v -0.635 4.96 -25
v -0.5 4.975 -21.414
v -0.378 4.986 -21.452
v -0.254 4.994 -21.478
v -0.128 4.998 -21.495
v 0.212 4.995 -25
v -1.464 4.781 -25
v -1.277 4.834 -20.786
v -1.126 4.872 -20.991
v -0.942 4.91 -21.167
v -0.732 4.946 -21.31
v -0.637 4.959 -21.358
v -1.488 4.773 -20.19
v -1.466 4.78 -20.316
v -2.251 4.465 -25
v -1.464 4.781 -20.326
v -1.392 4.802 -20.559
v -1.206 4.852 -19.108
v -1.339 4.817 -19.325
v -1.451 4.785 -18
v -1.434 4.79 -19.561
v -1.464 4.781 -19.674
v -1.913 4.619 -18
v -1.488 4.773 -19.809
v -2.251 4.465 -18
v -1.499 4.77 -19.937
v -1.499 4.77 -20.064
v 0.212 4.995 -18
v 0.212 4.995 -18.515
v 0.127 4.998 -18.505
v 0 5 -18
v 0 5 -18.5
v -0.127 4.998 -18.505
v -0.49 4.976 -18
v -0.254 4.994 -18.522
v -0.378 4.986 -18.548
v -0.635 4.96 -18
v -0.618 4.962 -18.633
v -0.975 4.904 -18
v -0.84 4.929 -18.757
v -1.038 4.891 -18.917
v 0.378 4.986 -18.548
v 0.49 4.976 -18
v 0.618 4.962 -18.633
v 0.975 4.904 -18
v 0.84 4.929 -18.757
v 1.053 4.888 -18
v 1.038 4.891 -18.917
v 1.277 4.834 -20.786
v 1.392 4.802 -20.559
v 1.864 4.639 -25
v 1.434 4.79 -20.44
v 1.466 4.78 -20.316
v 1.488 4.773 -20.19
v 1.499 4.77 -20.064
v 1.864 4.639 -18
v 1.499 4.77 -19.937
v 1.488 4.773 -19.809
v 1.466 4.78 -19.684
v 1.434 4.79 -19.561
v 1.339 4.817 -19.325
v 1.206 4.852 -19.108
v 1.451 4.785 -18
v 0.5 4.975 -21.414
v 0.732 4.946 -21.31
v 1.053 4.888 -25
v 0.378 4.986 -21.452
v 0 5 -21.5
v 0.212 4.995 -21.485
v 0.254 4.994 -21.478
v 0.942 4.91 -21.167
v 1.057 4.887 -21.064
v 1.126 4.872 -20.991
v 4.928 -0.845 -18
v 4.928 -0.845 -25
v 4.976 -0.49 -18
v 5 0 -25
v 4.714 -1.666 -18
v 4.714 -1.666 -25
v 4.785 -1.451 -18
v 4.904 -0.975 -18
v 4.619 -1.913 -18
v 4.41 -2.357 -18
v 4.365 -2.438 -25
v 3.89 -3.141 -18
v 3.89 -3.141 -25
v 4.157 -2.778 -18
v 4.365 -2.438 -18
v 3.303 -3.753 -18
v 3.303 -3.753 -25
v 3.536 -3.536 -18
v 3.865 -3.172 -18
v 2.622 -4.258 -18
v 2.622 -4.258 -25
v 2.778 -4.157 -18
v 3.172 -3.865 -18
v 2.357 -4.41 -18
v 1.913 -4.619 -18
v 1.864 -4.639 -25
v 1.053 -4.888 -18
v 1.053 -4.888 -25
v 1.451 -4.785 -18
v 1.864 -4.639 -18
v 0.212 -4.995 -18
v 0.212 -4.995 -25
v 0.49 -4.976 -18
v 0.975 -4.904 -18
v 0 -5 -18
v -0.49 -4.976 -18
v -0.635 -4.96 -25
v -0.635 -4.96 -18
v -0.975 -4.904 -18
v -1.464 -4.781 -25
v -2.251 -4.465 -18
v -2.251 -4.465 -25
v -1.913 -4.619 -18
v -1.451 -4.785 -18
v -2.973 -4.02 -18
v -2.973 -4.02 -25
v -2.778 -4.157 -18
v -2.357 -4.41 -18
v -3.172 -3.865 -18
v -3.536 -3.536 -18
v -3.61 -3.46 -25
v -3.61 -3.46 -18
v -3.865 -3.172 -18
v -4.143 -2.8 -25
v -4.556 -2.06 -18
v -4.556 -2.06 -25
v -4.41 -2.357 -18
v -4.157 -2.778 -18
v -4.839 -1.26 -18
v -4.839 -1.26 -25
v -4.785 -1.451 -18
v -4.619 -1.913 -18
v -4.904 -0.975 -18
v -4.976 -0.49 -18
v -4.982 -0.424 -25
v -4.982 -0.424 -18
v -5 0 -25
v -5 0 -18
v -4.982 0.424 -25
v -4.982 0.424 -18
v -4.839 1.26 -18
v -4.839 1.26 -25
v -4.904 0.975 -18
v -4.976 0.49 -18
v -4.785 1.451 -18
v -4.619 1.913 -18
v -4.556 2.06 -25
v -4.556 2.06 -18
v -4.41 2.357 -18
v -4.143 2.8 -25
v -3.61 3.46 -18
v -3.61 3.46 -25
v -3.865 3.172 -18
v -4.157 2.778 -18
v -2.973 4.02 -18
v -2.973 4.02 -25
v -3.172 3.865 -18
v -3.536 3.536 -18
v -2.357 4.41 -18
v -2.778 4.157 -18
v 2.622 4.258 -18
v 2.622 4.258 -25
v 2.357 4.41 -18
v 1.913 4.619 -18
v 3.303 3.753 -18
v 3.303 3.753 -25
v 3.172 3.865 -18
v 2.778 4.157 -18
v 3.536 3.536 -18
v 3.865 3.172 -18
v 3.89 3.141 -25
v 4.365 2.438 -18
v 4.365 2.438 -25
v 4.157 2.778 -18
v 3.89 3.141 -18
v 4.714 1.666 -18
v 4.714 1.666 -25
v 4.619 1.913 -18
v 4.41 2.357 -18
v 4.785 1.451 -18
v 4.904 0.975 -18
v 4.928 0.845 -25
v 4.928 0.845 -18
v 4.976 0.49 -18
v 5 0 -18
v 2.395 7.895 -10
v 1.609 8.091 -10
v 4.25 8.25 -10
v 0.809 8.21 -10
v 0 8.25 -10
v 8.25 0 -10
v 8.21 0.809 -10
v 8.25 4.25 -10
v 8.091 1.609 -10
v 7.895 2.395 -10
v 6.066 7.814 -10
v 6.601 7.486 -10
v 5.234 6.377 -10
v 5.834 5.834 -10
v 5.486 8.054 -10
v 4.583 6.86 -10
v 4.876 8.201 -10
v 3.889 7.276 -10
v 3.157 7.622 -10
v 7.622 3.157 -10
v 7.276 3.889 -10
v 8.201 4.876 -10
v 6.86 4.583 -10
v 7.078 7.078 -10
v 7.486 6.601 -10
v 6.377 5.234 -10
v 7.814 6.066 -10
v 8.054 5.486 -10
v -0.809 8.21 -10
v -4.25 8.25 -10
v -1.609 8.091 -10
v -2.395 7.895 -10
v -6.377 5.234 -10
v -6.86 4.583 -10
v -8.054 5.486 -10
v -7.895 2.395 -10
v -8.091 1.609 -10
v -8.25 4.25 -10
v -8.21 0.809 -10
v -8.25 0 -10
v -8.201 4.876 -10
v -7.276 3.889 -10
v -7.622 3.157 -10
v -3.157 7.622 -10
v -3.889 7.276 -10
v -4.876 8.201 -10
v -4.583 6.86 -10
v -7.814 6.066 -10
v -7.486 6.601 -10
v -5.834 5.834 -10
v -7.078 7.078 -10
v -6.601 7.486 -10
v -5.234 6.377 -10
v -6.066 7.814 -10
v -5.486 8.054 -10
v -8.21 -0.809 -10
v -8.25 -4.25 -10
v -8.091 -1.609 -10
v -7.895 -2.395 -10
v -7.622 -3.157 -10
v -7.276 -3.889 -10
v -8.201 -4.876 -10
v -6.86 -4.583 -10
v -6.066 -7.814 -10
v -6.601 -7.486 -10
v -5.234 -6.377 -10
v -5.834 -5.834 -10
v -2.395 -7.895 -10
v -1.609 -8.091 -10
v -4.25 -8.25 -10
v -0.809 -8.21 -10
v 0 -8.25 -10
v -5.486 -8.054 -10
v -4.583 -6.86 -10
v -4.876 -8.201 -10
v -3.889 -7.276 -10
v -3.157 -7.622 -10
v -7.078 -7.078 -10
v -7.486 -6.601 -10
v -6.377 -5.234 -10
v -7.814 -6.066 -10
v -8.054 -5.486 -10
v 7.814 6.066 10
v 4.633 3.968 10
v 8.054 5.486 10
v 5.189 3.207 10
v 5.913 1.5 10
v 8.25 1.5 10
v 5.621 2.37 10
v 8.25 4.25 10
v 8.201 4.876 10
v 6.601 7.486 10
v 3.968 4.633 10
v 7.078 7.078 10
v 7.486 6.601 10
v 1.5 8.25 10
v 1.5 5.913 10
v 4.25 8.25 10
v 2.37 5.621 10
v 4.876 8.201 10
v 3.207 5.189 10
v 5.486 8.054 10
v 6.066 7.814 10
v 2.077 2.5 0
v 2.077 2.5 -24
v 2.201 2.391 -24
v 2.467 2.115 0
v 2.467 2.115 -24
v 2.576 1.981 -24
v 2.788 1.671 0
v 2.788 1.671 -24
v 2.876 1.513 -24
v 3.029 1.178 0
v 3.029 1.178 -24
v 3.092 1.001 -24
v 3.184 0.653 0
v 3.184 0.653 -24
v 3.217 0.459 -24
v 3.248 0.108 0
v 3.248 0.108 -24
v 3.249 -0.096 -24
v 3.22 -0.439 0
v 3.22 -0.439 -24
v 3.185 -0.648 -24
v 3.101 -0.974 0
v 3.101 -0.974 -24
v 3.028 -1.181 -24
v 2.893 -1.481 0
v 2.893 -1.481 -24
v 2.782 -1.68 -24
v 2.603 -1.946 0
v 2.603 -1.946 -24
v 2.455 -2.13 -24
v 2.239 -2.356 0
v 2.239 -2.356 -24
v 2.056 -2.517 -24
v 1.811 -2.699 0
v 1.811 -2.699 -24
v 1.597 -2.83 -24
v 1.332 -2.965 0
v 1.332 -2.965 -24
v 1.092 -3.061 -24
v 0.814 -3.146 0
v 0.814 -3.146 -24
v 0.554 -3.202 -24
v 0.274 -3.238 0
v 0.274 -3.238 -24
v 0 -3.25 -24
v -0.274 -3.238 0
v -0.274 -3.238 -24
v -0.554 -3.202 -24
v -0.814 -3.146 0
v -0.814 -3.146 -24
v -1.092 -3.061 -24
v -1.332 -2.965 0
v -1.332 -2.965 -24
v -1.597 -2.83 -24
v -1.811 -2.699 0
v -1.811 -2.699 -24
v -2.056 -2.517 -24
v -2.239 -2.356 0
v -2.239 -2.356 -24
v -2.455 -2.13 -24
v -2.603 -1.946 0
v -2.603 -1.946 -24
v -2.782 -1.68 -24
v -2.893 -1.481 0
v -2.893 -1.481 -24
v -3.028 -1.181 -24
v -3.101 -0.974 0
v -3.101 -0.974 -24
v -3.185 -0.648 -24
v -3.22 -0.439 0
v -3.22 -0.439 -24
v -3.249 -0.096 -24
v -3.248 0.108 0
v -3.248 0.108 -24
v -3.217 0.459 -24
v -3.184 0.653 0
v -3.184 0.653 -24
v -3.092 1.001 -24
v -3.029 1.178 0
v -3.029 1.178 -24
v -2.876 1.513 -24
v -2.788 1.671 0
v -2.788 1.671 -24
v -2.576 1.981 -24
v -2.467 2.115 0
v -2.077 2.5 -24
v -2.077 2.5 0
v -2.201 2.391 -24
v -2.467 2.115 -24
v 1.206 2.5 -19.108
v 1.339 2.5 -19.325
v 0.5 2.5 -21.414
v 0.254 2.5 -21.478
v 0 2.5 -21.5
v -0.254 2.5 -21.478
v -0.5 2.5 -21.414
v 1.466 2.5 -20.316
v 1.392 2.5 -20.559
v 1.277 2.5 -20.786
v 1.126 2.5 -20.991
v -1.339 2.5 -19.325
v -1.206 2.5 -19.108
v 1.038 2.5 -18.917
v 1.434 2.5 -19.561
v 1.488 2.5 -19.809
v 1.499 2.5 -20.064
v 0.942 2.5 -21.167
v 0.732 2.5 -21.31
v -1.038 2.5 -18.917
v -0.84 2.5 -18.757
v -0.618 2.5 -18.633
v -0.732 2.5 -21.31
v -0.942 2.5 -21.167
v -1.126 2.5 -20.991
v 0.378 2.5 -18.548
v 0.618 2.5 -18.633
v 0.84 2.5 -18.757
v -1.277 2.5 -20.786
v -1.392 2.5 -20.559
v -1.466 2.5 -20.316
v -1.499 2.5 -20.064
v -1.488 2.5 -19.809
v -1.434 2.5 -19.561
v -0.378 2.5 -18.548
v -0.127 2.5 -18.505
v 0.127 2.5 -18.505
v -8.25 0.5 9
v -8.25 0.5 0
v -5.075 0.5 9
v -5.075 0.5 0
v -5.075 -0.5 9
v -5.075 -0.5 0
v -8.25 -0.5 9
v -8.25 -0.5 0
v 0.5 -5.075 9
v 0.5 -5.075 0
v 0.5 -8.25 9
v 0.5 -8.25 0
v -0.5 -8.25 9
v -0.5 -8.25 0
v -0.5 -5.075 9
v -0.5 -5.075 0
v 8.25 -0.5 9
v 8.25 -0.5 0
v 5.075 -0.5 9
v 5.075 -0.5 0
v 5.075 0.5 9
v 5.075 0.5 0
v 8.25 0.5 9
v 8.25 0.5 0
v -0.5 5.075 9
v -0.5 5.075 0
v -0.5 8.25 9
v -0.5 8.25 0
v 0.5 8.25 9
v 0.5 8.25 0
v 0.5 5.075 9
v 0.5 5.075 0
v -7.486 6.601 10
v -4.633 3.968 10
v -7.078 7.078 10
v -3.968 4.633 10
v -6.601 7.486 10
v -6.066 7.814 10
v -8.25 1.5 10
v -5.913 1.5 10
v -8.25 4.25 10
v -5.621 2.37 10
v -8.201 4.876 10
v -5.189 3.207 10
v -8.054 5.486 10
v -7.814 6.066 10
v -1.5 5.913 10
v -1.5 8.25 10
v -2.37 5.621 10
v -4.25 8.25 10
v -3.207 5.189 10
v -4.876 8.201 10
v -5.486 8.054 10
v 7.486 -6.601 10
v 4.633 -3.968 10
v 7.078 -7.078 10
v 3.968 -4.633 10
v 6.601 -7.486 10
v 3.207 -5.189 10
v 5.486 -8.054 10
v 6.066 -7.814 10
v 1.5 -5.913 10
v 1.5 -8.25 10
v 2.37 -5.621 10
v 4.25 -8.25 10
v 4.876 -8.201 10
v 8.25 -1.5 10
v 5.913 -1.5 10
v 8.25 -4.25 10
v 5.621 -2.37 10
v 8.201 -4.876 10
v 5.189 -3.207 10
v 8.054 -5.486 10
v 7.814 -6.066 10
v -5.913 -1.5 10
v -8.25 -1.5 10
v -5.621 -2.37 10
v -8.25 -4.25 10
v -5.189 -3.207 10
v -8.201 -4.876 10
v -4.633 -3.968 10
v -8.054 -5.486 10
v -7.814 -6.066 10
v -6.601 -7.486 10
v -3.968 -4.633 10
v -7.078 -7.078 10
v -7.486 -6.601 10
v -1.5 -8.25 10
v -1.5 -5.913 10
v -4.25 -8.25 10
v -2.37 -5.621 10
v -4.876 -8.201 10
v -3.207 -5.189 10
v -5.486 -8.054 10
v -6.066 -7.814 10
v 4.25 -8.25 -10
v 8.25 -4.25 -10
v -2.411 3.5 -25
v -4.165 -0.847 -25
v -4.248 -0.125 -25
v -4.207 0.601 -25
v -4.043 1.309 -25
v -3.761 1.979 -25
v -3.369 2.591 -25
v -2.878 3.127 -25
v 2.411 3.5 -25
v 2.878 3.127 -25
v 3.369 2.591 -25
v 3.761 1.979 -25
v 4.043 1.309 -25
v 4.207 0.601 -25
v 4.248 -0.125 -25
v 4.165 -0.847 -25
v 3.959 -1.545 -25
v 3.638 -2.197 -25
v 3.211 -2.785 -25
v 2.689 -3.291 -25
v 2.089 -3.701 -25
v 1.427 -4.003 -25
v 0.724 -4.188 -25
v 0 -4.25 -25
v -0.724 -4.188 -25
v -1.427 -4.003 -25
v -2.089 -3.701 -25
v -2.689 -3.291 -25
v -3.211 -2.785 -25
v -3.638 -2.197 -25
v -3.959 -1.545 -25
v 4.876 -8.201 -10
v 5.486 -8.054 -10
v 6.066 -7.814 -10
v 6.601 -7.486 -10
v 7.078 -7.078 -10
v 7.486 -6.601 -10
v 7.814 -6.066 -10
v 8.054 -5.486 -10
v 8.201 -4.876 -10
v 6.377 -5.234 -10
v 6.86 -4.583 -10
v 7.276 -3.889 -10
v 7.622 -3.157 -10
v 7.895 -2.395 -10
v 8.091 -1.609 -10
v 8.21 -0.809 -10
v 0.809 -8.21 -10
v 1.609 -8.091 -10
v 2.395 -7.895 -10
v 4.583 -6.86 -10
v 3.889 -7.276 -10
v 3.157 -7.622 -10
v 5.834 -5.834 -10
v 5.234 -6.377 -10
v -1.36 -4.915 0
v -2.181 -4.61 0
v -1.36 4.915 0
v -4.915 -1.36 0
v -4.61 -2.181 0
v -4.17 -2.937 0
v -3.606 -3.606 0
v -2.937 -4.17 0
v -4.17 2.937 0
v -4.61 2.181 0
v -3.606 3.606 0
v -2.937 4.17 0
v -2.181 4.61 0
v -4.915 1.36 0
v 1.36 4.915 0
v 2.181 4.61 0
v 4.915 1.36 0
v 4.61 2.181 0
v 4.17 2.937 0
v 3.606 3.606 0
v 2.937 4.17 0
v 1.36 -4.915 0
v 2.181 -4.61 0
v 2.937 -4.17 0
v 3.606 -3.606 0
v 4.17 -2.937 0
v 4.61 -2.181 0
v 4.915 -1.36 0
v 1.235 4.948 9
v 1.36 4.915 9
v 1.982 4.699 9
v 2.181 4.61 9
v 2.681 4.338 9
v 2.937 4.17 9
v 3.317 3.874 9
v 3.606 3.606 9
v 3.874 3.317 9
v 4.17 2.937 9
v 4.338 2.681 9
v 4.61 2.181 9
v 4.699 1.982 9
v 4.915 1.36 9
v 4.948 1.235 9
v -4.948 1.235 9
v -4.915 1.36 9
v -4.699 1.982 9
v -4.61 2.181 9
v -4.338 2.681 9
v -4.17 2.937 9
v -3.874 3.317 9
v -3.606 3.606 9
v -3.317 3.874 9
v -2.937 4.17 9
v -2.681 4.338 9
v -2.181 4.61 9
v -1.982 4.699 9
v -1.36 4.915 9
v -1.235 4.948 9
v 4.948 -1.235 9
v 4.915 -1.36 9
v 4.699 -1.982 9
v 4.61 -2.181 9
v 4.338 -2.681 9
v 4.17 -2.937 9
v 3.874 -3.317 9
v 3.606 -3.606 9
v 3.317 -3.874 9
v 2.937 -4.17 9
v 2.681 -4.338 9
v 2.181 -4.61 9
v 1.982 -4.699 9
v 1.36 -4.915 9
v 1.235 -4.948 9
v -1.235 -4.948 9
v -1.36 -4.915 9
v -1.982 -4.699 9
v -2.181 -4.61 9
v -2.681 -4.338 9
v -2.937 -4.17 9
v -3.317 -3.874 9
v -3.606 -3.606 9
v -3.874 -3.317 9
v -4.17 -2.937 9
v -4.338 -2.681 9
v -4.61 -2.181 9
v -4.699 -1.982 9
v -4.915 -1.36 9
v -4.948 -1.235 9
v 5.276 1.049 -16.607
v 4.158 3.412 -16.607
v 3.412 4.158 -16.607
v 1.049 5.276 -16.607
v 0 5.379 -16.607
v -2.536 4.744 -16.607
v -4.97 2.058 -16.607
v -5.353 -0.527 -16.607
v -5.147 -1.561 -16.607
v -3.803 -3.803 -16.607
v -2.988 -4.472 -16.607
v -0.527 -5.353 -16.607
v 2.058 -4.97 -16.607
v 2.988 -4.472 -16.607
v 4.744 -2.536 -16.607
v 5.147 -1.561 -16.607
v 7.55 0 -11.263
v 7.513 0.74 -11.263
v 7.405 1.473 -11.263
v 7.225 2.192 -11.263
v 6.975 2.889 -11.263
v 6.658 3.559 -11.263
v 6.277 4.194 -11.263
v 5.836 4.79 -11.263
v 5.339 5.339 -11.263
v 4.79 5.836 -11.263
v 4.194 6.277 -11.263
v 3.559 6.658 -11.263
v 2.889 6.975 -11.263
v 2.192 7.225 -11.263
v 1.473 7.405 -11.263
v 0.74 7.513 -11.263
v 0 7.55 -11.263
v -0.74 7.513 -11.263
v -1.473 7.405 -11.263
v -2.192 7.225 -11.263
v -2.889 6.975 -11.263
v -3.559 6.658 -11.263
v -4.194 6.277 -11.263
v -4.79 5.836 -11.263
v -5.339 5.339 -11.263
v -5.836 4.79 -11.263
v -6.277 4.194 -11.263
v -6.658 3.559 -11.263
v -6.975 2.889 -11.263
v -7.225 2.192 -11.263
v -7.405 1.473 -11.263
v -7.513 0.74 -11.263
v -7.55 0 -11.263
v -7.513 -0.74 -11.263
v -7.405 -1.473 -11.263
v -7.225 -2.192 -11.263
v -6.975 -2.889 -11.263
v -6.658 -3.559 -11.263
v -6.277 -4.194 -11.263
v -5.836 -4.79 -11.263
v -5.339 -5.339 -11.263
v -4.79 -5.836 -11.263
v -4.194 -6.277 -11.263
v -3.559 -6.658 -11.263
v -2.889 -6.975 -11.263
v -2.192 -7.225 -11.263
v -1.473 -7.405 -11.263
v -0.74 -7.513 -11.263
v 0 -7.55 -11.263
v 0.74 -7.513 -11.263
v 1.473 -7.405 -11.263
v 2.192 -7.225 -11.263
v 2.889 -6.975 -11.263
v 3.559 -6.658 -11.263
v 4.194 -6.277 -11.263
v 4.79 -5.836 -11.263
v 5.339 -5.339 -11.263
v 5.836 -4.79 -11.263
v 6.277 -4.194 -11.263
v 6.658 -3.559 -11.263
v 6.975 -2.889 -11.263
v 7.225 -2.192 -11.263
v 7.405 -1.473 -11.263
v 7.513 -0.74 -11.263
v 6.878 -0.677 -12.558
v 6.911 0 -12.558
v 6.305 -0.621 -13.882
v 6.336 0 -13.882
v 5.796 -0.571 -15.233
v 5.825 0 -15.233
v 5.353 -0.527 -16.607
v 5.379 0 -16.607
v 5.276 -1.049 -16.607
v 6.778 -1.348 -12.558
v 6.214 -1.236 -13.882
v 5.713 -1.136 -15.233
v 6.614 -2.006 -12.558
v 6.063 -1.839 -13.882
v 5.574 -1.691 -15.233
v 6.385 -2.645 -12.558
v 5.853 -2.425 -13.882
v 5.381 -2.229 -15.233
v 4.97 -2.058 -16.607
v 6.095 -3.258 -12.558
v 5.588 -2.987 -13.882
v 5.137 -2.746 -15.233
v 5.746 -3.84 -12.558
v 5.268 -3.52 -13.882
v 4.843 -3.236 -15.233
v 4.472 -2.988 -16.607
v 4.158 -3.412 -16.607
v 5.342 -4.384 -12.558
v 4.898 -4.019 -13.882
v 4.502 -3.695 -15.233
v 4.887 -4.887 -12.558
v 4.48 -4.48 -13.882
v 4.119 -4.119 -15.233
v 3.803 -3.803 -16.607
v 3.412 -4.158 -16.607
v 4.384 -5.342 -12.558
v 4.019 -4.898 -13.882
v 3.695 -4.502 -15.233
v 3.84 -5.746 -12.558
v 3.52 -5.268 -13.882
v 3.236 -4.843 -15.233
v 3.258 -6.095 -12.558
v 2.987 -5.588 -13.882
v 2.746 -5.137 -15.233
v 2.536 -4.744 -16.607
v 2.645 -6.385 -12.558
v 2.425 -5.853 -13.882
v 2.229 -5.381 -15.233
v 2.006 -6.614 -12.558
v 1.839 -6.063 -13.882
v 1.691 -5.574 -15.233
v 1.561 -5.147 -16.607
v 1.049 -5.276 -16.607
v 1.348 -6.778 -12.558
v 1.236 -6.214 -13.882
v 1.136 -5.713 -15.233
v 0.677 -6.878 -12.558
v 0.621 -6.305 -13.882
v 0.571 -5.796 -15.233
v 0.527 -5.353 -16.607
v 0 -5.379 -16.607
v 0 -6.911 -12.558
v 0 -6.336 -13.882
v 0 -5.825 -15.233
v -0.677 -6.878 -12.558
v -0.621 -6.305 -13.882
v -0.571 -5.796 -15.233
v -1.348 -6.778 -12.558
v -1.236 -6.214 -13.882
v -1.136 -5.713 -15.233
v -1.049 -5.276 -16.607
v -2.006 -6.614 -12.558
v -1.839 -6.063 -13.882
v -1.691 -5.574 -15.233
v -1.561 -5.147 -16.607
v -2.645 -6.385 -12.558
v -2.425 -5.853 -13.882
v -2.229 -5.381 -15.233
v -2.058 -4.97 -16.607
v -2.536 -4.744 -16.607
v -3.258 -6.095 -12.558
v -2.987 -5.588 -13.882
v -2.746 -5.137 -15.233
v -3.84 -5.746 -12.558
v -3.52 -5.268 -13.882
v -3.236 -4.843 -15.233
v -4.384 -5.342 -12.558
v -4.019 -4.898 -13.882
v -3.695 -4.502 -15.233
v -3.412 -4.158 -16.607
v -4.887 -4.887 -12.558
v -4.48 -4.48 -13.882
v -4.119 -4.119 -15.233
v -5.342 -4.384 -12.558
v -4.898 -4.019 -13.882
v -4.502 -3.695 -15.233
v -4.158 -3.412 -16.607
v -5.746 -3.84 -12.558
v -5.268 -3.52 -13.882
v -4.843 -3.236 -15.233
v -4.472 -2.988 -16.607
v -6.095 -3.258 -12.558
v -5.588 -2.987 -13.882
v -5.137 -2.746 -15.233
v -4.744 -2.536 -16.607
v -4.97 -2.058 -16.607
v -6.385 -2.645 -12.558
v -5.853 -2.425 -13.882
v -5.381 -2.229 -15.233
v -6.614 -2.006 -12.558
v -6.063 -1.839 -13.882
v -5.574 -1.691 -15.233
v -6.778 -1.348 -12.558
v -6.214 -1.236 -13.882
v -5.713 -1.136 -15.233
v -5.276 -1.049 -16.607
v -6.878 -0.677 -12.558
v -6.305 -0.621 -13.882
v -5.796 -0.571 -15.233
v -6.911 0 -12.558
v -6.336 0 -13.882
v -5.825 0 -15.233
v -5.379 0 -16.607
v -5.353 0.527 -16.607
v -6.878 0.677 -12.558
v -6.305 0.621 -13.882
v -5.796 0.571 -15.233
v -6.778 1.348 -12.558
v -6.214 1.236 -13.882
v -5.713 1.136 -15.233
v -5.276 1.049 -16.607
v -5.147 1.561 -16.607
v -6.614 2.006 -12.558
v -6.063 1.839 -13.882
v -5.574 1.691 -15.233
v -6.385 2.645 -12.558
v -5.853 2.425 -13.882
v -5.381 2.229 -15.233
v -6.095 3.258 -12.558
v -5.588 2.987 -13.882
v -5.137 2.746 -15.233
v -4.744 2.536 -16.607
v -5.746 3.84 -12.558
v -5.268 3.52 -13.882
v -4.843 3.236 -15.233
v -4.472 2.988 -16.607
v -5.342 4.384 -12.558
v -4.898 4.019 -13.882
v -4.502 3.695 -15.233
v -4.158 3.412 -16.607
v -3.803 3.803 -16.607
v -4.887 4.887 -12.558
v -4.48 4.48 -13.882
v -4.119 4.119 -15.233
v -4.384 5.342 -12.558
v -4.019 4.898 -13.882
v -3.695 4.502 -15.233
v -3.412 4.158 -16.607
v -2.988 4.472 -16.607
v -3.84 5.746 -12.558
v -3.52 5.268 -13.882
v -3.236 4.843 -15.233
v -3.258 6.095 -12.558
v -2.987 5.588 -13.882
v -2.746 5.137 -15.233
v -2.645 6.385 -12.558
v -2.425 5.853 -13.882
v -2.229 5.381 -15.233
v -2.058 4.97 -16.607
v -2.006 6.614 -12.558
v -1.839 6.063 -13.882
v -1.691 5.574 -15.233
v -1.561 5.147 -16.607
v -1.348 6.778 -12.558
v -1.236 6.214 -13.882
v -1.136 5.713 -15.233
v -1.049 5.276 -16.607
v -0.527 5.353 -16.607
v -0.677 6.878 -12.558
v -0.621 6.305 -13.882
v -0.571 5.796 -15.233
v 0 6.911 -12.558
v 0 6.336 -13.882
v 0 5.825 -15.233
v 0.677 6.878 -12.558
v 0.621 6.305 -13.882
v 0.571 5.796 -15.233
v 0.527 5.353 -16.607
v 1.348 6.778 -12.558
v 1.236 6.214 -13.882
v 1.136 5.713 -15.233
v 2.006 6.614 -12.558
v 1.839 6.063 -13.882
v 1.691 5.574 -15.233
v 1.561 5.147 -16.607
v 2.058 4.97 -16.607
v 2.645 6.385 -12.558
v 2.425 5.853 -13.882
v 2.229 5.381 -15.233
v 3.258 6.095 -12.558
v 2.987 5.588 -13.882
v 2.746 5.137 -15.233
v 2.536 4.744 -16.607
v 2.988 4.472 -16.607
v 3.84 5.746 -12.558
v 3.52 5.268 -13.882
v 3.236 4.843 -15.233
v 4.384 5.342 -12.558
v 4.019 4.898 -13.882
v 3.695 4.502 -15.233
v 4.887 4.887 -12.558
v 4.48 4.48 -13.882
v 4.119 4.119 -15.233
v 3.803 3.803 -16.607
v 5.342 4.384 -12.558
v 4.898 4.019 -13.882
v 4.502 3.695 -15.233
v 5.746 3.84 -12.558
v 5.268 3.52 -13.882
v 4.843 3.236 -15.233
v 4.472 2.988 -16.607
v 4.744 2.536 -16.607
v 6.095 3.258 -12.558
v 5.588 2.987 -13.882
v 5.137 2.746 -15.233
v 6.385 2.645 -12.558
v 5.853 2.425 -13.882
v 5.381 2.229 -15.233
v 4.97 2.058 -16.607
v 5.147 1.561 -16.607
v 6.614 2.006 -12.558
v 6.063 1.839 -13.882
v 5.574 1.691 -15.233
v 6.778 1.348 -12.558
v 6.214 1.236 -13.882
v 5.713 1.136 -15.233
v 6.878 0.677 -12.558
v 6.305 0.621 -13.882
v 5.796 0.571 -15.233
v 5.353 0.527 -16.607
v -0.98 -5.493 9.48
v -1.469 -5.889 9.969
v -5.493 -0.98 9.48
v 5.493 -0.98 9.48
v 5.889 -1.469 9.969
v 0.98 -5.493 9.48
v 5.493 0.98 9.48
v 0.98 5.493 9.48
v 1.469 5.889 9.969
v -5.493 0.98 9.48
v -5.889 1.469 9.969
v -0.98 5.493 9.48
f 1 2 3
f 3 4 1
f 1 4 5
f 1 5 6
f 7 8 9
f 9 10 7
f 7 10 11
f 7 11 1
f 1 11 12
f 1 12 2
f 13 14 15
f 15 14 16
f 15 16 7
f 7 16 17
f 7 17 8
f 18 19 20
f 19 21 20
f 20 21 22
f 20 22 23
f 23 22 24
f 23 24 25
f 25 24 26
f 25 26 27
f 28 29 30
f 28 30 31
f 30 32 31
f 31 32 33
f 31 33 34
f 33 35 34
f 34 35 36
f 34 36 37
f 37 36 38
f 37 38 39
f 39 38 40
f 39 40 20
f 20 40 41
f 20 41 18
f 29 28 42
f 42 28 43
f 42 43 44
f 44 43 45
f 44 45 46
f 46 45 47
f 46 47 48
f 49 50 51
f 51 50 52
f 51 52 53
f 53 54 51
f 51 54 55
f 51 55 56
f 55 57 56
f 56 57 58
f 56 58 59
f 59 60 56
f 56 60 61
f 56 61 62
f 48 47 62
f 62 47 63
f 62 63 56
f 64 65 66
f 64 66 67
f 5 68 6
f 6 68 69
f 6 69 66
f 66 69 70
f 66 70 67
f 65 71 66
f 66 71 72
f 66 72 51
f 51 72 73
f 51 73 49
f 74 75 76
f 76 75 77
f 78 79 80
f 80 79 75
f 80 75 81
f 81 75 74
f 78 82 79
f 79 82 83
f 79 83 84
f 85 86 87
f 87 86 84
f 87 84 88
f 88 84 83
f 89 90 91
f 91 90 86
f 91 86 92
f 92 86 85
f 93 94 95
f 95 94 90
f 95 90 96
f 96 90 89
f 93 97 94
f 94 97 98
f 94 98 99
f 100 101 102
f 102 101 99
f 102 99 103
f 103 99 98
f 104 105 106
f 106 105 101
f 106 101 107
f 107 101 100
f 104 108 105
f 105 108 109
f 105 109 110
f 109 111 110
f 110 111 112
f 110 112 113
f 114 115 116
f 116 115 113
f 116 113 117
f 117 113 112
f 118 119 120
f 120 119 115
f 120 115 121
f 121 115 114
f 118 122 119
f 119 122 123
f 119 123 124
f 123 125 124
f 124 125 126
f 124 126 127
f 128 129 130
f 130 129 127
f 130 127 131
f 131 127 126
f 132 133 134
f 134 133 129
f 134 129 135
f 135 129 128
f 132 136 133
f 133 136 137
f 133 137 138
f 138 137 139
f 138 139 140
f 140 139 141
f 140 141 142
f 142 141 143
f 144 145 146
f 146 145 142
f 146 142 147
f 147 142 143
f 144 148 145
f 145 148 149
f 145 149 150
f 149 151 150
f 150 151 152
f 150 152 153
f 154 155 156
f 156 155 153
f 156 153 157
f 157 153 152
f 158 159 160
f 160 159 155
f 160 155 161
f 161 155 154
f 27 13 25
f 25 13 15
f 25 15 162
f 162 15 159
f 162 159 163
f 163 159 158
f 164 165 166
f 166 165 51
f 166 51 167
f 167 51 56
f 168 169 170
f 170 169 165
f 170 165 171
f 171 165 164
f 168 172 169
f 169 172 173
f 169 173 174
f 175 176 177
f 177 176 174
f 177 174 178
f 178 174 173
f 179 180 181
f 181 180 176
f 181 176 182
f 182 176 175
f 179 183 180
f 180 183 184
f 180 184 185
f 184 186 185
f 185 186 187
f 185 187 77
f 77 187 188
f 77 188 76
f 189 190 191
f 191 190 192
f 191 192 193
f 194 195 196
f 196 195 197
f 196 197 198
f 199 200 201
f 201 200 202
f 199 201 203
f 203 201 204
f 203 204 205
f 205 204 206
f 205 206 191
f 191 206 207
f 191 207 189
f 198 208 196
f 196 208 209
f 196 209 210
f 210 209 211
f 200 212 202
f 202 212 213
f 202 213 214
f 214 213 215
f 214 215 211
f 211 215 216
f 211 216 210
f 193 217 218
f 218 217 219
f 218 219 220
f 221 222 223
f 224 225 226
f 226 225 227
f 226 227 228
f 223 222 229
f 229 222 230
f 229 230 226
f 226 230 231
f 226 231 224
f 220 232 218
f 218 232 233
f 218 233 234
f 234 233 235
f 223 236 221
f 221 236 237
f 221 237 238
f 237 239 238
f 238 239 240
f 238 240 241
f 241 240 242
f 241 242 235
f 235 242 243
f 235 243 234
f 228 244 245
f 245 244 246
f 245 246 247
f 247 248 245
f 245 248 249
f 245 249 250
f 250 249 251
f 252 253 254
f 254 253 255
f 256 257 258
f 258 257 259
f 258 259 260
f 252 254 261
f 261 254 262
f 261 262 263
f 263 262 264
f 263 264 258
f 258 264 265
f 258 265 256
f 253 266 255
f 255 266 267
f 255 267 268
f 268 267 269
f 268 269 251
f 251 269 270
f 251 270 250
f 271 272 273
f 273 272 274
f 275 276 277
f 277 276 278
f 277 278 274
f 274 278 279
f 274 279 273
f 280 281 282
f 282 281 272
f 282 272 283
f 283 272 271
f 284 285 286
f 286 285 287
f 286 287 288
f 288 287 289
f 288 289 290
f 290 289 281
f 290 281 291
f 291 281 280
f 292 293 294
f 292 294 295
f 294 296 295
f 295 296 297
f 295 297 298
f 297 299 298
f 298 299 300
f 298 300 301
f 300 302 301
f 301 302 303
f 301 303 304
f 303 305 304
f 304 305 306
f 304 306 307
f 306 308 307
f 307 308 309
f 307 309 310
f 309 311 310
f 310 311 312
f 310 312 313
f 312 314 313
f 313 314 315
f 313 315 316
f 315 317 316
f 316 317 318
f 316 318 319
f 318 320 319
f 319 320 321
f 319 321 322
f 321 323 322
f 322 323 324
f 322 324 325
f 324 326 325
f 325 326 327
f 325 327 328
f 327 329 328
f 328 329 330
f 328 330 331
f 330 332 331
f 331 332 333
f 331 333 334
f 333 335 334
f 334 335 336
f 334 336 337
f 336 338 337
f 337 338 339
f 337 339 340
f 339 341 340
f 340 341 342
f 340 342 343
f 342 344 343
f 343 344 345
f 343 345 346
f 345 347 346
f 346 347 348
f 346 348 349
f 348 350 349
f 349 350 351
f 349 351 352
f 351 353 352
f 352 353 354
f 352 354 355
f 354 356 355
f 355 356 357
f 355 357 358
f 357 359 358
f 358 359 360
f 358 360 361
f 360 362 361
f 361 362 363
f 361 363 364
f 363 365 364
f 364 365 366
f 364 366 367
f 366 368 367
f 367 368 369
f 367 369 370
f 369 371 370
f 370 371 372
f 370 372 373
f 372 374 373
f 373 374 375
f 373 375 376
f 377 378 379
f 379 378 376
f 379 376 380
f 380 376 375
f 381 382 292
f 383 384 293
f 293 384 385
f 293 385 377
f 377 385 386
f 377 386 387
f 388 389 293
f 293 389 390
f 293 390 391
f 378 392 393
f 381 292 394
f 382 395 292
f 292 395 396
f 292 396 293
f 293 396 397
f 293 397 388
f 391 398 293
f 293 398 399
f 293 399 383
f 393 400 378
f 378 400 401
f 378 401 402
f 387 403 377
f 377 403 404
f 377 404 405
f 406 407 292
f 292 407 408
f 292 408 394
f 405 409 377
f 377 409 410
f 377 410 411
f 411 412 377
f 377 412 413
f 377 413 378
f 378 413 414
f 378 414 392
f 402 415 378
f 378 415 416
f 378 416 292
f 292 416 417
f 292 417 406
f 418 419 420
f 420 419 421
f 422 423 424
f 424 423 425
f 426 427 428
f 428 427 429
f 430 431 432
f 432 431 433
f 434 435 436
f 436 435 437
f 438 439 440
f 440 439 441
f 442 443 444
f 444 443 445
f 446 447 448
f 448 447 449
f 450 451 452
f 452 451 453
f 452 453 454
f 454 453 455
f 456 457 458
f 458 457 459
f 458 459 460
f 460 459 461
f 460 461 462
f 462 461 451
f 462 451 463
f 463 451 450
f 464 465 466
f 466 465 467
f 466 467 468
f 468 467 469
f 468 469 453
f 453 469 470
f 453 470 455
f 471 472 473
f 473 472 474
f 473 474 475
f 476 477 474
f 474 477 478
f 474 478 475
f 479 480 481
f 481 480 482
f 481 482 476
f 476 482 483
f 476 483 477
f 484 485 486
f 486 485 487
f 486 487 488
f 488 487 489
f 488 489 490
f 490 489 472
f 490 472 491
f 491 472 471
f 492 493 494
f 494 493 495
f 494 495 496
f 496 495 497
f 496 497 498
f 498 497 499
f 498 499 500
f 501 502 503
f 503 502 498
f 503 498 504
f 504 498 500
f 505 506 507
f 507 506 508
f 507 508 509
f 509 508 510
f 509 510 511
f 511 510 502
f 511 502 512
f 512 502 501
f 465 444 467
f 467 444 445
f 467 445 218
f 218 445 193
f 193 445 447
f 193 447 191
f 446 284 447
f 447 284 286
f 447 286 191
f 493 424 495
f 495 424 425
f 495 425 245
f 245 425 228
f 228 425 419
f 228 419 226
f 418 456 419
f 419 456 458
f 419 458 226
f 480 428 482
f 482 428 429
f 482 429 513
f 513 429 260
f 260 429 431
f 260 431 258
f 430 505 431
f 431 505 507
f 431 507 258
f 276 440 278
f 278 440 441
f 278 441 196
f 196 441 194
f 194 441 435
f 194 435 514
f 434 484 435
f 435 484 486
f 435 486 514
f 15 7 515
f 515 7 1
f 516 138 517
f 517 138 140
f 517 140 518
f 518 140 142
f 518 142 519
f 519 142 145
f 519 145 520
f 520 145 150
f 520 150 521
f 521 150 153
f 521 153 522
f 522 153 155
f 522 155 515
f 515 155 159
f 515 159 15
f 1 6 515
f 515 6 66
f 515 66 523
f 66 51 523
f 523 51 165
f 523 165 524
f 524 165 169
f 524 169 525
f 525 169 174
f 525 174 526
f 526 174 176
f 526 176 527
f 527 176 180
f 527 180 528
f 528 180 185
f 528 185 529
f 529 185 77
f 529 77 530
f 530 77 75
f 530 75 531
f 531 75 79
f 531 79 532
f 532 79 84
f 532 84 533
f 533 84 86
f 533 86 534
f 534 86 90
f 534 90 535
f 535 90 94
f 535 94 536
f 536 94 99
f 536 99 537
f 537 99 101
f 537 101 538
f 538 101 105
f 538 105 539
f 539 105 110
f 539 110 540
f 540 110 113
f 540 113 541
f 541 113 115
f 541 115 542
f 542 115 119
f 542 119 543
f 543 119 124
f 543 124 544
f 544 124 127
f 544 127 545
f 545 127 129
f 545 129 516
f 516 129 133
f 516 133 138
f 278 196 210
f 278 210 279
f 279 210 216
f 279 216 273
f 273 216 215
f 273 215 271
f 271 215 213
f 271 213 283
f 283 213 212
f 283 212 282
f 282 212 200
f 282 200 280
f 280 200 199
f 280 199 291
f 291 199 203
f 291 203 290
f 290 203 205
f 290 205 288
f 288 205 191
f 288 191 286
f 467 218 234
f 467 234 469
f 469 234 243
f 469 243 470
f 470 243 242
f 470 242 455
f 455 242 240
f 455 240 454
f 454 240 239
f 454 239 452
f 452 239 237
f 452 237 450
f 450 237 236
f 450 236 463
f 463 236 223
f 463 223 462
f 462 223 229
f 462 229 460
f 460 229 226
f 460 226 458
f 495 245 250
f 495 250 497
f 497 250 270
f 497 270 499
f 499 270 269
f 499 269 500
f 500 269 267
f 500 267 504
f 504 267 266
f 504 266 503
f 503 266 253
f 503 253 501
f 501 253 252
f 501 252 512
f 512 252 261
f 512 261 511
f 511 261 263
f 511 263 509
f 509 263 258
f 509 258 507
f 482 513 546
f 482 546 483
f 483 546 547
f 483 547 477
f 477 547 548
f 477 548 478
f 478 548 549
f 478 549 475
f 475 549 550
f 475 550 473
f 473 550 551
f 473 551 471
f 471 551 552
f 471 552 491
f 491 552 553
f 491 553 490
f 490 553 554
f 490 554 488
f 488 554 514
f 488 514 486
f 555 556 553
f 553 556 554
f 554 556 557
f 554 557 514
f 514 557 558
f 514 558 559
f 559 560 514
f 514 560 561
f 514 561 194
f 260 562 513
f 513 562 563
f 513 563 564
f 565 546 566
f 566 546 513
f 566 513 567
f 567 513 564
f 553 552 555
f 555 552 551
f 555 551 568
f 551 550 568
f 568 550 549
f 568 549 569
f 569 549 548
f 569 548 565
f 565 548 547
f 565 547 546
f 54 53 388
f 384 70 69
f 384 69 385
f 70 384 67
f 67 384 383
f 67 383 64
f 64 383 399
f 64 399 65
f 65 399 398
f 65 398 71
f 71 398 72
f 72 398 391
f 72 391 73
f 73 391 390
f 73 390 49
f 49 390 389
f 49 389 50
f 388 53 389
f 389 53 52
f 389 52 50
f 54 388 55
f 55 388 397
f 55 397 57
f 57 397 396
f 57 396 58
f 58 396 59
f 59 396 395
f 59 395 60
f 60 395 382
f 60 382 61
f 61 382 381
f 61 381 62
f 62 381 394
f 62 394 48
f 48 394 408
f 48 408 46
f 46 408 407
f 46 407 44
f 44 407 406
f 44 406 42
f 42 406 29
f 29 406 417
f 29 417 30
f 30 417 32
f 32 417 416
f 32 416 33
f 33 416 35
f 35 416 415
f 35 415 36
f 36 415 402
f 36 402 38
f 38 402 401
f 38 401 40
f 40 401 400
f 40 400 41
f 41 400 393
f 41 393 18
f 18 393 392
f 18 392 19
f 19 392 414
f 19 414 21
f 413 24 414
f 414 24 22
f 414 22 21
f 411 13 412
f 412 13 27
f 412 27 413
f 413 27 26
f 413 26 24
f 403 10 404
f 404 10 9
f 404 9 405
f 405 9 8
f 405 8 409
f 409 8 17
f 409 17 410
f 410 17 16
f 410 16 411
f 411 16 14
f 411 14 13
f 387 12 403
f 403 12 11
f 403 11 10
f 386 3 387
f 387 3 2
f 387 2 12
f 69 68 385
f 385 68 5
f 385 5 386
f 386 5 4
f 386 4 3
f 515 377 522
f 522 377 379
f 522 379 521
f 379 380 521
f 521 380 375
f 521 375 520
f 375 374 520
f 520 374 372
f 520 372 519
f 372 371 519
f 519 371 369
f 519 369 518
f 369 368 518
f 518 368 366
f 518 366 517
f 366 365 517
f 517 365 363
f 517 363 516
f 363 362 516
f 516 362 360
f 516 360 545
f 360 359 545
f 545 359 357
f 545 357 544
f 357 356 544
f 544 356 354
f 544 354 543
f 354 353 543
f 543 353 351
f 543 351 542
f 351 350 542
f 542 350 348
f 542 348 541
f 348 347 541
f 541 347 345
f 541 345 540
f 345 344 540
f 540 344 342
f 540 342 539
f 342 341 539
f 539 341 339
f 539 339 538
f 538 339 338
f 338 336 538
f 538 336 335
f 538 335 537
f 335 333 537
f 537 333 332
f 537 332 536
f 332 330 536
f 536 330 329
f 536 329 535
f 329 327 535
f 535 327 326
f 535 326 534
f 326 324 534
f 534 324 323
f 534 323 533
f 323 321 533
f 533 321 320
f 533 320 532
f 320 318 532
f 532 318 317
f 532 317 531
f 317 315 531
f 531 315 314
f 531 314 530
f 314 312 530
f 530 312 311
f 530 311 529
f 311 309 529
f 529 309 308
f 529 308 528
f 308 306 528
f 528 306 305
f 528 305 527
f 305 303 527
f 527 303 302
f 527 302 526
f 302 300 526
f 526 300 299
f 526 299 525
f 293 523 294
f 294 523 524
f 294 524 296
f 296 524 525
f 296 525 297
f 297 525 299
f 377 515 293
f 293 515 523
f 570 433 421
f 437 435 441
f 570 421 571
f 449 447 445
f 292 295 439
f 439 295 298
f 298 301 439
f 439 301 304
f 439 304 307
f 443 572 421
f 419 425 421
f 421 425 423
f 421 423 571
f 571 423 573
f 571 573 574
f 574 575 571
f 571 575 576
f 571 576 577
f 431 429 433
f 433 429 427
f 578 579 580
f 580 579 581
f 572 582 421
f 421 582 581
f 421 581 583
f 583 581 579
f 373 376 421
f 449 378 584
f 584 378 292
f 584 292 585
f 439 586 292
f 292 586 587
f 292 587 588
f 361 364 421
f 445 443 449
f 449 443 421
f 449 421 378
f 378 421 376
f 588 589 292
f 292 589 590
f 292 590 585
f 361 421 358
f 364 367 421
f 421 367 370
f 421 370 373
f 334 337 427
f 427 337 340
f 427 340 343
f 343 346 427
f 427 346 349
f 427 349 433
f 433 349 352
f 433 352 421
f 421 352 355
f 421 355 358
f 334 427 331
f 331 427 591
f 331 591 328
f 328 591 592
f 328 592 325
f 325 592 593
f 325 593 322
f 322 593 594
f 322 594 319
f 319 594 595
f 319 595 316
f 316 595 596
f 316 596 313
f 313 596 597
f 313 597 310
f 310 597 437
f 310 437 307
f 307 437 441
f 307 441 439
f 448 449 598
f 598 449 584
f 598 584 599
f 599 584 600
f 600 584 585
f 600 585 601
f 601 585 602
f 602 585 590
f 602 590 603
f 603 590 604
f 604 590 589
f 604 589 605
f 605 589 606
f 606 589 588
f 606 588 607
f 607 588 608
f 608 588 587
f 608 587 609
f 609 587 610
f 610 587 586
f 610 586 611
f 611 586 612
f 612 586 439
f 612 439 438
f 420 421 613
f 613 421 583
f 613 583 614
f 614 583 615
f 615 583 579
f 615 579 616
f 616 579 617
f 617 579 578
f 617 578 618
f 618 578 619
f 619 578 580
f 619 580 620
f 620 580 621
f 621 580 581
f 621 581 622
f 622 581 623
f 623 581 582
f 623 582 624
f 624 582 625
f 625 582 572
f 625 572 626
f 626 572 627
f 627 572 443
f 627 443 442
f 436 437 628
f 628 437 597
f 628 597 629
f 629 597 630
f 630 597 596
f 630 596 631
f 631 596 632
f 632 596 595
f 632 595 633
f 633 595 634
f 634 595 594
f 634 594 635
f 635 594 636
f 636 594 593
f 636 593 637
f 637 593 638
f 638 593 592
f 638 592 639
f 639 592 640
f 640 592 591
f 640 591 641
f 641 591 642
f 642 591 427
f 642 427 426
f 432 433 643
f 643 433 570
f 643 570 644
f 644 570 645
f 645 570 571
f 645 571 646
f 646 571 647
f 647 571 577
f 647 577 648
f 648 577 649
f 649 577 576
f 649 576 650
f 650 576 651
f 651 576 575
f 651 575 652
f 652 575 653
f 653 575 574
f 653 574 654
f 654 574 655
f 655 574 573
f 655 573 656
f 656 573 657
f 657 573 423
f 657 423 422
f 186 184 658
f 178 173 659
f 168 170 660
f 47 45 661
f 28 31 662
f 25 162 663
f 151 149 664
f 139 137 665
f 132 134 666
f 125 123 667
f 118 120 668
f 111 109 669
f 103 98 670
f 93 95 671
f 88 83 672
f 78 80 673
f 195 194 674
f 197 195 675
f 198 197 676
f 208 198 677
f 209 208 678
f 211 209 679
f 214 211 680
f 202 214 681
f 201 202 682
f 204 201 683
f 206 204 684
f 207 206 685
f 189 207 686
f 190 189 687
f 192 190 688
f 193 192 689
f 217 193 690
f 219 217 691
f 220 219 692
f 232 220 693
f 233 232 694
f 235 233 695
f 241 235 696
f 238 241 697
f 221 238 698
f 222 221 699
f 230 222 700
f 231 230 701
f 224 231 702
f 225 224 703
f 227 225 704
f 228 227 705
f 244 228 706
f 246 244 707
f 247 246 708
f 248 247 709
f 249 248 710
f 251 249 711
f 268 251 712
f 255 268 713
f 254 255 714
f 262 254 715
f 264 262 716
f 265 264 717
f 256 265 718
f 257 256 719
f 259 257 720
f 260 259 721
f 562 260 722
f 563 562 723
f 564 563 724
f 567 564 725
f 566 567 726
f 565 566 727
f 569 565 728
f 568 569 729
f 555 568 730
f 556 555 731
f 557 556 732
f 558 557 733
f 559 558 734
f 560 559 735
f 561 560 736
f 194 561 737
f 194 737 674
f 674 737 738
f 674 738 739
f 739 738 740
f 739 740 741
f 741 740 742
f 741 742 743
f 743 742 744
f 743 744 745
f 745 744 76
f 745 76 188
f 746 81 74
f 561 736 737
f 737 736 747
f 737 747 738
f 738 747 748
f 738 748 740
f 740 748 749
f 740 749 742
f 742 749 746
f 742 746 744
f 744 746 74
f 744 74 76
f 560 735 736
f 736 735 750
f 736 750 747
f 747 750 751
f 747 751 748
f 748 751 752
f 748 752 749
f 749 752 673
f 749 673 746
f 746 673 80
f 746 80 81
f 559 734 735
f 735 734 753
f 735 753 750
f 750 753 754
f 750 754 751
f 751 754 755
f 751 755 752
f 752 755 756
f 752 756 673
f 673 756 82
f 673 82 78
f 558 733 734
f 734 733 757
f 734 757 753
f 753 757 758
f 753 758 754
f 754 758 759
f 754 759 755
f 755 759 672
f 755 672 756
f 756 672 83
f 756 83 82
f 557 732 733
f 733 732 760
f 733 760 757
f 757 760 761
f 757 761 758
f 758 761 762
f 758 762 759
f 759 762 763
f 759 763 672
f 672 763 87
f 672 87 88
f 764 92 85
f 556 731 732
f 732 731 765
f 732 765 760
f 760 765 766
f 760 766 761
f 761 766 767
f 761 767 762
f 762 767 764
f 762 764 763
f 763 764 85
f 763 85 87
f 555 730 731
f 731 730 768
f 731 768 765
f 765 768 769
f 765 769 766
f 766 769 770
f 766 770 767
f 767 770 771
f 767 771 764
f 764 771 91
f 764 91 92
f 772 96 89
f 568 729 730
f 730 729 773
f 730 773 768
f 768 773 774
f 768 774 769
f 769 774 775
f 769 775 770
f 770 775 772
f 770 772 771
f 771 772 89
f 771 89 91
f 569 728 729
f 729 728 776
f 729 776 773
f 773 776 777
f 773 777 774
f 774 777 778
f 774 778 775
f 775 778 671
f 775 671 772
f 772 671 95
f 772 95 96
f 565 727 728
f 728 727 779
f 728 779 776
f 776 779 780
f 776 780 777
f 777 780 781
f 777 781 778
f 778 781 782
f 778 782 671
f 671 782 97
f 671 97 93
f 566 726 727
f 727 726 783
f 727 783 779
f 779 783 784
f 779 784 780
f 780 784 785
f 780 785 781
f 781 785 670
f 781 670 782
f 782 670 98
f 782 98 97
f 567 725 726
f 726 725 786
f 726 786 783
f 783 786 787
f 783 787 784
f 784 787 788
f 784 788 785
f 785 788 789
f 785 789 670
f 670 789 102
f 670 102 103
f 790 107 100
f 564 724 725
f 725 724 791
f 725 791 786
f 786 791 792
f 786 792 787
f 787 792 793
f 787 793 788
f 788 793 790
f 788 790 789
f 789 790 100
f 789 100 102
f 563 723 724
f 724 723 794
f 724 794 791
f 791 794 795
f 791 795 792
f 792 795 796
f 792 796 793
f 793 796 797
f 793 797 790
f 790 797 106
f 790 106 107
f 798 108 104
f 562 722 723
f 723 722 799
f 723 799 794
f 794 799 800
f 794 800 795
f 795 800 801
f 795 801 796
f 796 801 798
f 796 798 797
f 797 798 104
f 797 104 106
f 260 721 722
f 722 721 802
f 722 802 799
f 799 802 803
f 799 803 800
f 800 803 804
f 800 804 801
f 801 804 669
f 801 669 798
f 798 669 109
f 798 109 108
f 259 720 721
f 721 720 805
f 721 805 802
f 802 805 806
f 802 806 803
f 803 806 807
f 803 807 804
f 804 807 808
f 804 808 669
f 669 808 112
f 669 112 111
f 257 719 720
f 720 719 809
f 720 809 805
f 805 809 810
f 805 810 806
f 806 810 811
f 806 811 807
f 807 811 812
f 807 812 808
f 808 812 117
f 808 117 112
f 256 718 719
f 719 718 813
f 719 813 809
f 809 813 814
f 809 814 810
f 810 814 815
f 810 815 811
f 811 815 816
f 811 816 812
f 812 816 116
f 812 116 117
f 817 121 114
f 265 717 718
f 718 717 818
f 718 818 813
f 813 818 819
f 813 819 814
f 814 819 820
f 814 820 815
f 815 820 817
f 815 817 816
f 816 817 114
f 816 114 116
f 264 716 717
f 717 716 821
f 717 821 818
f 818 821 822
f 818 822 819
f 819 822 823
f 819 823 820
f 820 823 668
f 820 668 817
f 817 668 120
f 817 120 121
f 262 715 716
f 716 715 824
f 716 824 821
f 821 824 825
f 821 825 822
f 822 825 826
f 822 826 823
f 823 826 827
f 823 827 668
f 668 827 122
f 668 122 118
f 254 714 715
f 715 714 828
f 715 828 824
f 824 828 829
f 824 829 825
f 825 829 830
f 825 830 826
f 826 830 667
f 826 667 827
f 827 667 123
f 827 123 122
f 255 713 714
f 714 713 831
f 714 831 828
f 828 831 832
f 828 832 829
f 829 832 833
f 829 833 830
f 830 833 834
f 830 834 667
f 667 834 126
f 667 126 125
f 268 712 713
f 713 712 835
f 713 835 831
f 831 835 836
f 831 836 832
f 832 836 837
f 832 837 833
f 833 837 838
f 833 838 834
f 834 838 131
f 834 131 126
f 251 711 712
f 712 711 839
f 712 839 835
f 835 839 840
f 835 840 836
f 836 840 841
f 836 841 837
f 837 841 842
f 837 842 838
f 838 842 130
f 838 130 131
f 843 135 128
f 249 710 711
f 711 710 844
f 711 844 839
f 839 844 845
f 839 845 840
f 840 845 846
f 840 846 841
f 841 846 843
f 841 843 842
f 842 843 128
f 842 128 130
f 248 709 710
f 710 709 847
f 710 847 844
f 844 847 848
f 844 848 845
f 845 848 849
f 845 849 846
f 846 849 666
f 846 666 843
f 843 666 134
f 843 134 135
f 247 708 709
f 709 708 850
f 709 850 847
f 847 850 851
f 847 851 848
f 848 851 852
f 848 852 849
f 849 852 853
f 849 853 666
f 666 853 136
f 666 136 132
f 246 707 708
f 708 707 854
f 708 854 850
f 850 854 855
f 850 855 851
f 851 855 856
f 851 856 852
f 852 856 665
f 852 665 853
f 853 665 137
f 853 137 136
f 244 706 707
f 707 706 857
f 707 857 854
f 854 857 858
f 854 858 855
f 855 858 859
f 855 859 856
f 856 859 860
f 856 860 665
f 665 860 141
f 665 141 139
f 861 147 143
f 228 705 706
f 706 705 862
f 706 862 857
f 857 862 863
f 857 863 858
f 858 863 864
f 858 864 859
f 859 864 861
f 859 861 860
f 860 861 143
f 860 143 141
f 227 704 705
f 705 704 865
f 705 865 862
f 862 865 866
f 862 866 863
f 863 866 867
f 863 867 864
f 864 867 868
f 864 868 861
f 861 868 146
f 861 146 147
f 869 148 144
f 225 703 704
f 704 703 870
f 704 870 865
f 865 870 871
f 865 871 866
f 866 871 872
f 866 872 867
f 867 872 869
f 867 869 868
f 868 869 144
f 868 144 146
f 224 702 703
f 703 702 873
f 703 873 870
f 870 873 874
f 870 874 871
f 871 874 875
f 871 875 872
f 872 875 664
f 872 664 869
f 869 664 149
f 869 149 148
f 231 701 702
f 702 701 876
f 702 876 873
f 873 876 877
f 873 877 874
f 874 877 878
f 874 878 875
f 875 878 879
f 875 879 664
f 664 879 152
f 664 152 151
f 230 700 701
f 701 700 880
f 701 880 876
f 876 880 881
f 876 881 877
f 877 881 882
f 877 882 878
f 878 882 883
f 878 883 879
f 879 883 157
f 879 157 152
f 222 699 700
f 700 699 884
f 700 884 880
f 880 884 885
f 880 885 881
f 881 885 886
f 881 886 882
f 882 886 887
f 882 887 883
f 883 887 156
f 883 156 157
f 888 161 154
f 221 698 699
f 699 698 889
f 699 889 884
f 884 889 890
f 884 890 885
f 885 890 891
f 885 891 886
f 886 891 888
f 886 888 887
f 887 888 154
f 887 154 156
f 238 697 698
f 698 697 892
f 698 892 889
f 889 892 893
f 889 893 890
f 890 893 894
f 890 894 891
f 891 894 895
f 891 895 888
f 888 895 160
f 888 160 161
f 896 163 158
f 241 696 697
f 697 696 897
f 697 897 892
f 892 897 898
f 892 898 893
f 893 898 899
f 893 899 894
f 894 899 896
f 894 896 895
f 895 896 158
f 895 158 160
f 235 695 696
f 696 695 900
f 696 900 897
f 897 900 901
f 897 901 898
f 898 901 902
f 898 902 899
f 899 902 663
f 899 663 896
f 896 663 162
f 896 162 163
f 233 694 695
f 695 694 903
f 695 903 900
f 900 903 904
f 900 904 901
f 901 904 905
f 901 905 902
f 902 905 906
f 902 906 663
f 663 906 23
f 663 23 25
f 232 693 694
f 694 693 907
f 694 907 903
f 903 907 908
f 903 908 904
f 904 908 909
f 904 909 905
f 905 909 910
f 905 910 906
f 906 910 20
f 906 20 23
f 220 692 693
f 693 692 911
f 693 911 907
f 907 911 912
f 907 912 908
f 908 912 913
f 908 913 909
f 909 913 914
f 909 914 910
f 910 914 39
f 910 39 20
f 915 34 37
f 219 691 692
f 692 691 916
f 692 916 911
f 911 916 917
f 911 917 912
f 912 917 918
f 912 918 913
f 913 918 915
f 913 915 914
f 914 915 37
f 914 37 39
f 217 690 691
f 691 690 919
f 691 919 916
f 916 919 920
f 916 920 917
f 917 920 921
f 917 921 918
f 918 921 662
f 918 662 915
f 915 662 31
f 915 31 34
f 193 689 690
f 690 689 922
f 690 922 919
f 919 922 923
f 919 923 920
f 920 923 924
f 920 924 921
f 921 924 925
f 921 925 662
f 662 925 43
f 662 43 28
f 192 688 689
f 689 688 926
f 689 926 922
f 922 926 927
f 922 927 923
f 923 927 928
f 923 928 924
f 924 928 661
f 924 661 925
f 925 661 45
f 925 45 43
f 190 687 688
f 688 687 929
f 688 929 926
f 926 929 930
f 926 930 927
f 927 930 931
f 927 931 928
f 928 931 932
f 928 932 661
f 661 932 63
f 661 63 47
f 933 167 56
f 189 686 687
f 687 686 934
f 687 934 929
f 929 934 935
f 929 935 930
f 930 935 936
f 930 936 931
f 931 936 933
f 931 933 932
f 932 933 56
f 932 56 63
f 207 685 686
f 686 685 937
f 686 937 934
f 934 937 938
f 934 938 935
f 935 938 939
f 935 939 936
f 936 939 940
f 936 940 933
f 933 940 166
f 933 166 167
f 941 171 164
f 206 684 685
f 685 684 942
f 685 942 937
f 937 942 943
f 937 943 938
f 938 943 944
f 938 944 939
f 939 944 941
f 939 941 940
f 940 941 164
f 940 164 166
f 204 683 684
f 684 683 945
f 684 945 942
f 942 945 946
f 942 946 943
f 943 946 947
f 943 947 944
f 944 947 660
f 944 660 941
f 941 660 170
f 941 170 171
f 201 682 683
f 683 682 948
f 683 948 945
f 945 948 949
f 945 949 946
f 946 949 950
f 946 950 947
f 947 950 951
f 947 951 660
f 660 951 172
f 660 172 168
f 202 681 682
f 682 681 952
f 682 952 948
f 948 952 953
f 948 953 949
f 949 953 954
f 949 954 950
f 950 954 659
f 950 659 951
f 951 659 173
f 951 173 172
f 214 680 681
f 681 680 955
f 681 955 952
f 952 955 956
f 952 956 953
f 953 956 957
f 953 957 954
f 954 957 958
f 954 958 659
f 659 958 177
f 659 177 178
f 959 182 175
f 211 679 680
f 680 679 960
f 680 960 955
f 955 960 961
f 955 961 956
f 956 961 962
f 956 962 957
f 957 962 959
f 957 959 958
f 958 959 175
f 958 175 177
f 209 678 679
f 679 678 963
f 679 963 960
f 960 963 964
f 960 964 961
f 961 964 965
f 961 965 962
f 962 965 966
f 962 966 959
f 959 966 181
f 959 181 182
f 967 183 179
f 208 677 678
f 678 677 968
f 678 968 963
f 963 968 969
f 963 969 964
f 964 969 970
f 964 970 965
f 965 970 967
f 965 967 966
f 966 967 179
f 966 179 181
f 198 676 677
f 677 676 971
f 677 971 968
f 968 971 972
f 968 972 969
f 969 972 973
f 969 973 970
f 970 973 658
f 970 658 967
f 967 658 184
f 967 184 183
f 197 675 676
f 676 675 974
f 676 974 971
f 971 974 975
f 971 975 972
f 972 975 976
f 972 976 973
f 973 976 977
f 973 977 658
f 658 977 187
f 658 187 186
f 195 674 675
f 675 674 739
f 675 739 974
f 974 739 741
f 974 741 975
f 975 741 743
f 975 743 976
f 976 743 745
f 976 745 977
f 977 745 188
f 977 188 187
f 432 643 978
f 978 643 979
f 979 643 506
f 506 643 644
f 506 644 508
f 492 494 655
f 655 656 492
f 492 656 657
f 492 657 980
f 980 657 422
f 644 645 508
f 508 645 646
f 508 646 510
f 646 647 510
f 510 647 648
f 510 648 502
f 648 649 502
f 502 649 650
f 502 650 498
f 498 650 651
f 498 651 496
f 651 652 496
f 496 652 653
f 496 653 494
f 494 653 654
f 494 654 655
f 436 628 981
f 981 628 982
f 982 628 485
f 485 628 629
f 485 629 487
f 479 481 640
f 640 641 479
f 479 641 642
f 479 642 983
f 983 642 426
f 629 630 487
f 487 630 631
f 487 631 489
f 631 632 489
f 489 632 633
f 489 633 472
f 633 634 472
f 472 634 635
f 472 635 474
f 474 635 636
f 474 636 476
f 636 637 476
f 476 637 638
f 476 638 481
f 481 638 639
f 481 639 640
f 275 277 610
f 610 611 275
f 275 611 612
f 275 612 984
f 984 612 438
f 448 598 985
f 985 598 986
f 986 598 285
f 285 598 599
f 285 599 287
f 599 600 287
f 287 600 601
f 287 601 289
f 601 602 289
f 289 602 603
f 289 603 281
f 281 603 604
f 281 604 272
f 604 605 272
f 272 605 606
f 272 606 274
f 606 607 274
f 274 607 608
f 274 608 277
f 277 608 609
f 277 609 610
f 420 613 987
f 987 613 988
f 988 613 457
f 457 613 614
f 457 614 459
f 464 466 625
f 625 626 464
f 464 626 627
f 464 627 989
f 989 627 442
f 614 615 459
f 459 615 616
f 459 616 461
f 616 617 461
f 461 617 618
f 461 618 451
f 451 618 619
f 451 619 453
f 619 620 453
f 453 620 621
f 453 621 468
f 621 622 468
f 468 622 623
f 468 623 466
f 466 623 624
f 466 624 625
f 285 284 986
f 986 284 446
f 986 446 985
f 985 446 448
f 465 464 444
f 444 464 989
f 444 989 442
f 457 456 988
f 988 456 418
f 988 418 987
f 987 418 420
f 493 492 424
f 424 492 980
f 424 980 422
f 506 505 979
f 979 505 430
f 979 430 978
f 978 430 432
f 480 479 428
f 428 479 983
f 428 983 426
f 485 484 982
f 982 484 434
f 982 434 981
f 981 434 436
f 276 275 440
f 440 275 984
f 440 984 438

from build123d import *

# Parameters (mm, degrees)
BOSS_EXTRUDE1_DEPTH = 10
SKETCH12_R          = 5
BOSS_EXTRUDE3_DEPTH = 15
CUT_EXTRUDE3_DEPTH  = 40
SKETCH14_R          = 1.5
CUT_EXTRUDE4_DEPTH  = 12
CHAMFER5_SIZE       = 1
SKETCH10_W          = 1
SKETCH10_H          = 10
SKETCH10_W_2        = 10
SKETCH10_H_2        = 1
CUT_EXTRUDE5_DEPTH  = 25
SKETCH16_R          = 5.1
CUT_EXTRUDE6_DEPTH  = 25
CHAMFER6_SIZE       = 1
CHAMFER7_SIZE       = 1


with BuildPart() as part:
    # Sketch2 → Boss-Extrude1 (new body, symmetric)
    with BuildSketch(Plane.XY):
        with BuildLine():
            Line((4.25, -8.25), (-4.25, -8.25))
            ThreePointArc((-4.25, -8.25), (-7.078427125, -7.078427125), (-8.25, -4.25))
            Line((-8.25, -4.25), (-8.25, 4.25))
            ThreePointArc((-8.25, 4.25), (-7.078427125, 7.078427125), (-4.25, 8.25))
            Line((-4.25, 8.25), (4.25, 8.25))
            ThreePointArc((4.25, 8.25), (7.078427125, 7.078427125), (8.25, 4.25))
            Line((8.25, 4.25), (8.25, -4.25))
            ThreePointArc((8.25, -4.25), (7.078427125, -7.078427125), (4.25, -8.25))
        make_face()
    extrude(amount=BOSS_EXTRUDE1_DEPTH, both=True)

    # Sketch12 → Boss-Extrude3 (add)
    with BuildSketch(Plane(origin=(0, 0, -10), x_dir=(-1, 0, 0), z_dir=(0, 0, -1))):
        Circle(SKETCH12_R)
    extrude(amount=BOSS_EXTRUDE3_DEPTH)

    # Sketch13 → Cut-Extrude3 (cut)
    with BuildSketch(Plane(origin=(0, 0, -25), x_dir=(-1, 0, 0), z_dir=(0, 0, -1))):
        with BuildLine():
            Line((-2.076655966, 2.5), (2.076655966, 2.5))
            ThreePointArc((2.076655966, 2.5), (0, -3.25), (-2.076655966, 2.5))
        make_face()
    extrude(amount=-CUT_EXTRUDE3_DEPTH, mode=Mode.SUBTRACT)

    # Sketch14 → Cut-Extrude4 (cut)
    with BuildSketch(Plane(origin=(0, 0, 0), x_dir=(1, 0, 0), z_dir=(0, 1, 0))):
        with Locations((0, 20)):
            Circle(SKETCH14_R)
    extrude(amount=CUT_EXTRUDE4_DEPTH, mode=Mode.SUBTRACT)

    # Chamfer5
    chamfer5_edges = [part.edges().sort_by_distance(p)[0] for p in [
        (0, 2.5, -25),
        (0, -3.25, -25),
    ]]
    chamfer(chamfer5_edges, length=CHAMFER5_SIZE)

    # Sketch10 → Cut-Extrude5 (cut)
    with BuildSketch(Plane.XY):
        with Locations((0, 8)):
            Rectangle(SKETCH10_W, SKETCH10_H)
        with Locations((8, 0)):
            Rectangle(SKETCH10_W_2, SKETCH10_H_2)
        with Locations((0, -8)):
            Rectangle(SKETCH10_W, SKETCH10_H)
        with Locations((-8, 0)):
            Rectangle(SKETCH10_W_2, SKETCH10_H_2)
    extrude(amount=CUT_EXTRUDE5_DEPTH, mode=Mode.SUBTRACT)

    # Sketch16 → Cut-Extrude6 (cut)
    with BuildSketch(Plane.XY):
        Circle(SKETCH16_R)
    extrude(amount=CUT_EXTRUDE6_DEPTH, mode=Mode.SUBTRACT)

    # Sketch56 → Revolve3 (revolve)
    with BuildSketch(Plane(origin=(0, 0, 0), x_dir=(0, 0, -1), z_dir=(1, 0, 0))):
        with BuildLine():
            Line((10, 5), (10, 8.25))
            ThreePointArc((10, 8.25), (13.882456458, 6.335662049), (18, 5))
            Line((18, 5), (10, 5))
        make_face()
    revolve(axis=Axis((0, 0, 0), (0, 0, -1)))

    # Chamfer6
    chamfer6_edges = [part.edges().sort_by_distance(p)[0] for p in [
        (-3.606244584, -3.606244584, 10),
        (3.606244584, -3.606244584, 10),
        (3.606244584, 3.606244584, 10),
        (-3.606244584, 3.606244584, 10),
    ]]
    chamfer(chamfer6_edges, length=CHAMFER6_SIZE)

    # Chamfer7
    chamfer7_edges = [part.edges().sort_by_distance(p)[0] for p in [
        (0.5, 7.164736831, 10),
        (-0.5, 7.164736831, 10),
        (-7.164736831, 0.5, 10),
        (-7.164736831, -0.5, 10),
        (-0.5, -7.164736831, 10),
        (0.5, -7.164736831, 10),
        (7.164736831, -0.5, 10),
        (7.164736831, 0.5, 10),
    ]]
    chamfer(chamfer7_edges, length=CHAMFER7_SIZE)


solid = part.part
